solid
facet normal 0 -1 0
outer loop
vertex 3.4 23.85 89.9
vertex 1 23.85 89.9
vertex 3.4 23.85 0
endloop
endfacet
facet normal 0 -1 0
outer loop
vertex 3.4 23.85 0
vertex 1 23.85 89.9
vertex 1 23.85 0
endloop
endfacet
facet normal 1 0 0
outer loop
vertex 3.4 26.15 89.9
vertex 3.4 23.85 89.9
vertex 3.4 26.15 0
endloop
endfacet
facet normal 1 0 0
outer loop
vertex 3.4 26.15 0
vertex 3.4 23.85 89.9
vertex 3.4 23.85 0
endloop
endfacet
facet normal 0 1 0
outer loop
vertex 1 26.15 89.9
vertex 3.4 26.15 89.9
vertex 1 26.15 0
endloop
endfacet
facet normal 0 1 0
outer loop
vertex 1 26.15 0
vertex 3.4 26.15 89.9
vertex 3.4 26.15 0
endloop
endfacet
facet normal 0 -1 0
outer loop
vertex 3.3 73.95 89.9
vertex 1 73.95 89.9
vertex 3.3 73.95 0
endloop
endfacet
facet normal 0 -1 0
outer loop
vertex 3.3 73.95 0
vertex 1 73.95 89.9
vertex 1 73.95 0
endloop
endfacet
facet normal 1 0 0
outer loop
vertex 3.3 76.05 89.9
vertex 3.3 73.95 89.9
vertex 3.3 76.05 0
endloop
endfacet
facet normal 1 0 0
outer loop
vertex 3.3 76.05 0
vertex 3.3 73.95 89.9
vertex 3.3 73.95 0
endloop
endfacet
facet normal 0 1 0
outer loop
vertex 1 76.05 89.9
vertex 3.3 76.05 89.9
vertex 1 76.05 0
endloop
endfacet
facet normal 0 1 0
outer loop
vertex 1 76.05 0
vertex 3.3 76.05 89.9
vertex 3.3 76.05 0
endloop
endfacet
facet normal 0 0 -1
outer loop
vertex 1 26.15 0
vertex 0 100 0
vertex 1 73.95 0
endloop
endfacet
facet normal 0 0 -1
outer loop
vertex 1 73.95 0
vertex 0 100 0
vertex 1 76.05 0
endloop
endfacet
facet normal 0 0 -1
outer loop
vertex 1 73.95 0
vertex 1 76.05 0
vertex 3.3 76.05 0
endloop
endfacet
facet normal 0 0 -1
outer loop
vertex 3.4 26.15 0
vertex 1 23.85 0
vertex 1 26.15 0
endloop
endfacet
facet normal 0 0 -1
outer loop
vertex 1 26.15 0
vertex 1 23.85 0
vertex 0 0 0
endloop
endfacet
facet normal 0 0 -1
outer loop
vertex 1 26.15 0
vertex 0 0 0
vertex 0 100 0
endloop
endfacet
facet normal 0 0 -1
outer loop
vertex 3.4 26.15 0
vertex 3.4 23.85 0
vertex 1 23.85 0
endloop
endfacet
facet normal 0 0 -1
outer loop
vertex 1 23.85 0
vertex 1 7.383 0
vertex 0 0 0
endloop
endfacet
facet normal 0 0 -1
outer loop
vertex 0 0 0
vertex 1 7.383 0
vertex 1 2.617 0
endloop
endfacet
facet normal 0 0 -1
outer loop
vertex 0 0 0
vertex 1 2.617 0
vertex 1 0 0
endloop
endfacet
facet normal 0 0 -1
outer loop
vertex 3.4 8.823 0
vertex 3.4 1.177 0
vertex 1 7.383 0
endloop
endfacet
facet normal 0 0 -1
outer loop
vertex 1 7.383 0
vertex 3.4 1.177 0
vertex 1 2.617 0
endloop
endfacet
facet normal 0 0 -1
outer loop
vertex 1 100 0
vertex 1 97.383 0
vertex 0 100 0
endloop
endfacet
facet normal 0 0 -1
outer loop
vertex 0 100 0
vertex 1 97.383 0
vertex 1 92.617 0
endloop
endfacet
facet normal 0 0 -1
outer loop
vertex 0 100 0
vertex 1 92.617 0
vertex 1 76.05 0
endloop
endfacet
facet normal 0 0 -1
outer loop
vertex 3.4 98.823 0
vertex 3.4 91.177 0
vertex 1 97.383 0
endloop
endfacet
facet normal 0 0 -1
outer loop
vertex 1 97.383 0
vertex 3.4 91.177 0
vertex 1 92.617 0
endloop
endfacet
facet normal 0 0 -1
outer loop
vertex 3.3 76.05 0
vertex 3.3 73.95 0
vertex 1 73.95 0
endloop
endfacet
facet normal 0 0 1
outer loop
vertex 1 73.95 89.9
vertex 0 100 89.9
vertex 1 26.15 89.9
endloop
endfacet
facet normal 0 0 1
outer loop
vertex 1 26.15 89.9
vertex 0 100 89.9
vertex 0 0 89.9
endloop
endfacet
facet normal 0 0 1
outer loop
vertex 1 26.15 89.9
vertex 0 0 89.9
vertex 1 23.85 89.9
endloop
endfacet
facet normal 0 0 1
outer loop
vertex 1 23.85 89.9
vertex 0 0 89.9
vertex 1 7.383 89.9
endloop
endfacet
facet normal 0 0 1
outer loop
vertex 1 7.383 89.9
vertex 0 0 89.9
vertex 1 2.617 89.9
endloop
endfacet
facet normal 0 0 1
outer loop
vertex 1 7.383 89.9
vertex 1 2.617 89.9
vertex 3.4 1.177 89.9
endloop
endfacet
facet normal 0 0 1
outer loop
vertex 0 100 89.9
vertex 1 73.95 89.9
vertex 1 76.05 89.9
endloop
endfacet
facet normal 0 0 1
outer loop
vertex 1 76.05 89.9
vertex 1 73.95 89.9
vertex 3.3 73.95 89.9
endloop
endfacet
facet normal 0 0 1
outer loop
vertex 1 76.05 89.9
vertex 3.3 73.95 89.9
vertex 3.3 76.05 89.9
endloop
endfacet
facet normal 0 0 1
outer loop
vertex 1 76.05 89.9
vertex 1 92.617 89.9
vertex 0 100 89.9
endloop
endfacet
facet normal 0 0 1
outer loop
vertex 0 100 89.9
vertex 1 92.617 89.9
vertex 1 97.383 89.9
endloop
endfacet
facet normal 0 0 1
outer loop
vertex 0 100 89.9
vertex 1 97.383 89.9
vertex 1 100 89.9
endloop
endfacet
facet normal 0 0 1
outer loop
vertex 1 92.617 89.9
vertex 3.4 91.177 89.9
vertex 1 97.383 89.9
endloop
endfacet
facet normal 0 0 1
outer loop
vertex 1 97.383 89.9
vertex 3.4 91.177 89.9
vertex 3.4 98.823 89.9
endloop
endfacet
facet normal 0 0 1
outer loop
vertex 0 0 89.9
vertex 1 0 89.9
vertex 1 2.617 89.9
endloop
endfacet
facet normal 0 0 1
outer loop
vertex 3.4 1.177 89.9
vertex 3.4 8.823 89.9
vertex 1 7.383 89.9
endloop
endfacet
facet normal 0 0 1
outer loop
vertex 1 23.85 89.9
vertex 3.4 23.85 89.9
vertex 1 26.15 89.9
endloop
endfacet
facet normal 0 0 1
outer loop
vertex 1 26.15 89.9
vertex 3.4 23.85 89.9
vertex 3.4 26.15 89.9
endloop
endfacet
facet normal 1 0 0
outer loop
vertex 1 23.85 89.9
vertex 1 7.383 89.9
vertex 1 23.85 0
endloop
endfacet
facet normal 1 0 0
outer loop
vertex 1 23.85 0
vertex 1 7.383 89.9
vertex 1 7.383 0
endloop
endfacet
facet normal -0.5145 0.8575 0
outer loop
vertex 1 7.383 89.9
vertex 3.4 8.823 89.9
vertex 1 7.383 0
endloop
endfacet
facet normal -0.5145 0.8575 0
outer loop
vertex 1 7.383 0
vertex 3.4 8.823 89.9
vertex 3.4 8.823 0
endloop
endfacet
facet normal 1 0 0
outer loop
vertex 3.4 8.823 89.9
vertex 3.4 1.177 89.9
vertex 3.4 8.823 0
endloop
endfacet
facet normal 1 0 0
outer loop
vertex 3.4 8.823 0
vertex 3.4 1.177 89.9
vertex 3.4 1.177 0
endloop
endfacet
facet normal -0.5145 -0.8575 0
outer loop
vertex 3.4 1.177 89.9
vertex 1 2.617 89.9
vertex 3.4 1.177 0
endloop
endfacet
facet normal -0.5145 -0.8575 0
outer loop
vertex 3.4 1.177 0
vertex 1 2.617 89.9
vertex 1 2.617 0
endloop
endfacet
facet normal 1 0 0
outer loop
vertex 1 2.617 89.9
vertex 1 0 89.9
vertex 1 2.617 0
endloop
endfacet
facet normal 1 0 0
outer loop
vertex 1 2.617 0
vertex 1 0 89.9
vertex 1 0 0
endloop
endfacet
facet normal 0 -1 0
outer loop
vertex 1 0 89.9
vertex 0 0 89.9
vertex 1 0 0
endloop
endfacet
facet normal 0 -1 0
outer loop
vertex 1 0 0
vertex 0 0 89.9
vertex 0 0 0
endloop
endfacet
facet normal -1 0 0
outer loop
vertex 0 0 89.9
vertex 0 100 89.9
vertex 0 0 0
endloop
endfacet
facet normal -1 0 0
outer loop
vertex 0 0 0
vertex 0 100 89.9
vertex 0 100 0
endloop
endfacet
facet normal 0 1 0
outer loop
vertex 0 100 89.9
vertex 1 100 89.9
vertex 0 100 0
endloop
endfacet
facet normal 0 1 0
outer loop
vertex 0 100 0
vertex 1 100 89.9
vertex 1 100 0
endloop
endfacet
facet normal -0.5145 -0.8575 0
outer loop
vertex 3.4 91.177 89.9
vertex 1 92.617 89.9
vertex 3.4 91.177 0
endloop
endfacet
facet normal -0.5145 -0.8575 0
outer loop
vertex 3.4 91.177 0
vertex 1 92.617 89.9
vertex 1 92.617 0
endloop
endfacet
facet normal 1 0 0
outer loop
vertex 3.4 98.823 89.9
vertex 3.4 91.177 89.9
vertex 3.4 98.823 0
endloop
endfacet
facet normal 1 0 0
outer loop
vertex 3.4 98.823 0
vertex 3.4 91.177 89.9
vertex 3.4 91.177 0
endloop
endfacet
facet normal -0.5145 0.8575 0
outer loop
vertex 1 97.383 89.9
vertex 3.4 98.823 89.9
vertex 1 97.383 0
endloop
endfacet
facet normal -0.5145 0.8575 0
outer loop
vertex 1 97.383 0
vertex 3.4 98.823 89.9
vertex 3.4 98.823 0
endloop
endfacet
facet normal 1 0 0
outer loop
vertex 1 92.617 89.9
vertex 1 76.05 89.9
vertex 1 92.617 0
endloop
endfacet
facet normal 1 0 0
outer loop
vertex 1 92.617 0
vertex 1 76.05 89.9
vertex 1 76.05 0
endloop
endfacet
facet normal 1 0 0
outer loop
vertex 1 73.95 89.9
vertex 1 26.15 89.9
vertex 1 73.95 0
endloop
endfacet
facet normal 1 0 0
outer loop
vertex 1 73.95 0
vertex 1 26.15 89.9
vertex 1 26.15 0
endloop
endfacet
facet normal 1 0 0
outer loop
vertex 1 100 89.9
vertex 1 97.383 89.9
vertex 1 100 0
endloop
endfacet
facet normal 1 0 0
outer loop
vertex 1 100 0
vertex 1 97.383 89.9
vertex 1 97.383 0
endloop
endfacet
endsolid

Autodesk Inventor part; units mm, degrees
ref_plane "YZ Plane" through (0, 0, 0) normal (1, 0, 0) x (0, 1, 0)
ref_plane "XZ Plane" through (0, 0, 0) normal (0, 1, 0) x (-1, 0, 0)
sketch "Sketch1" plane through (0, 0, 0) normal (0, 0, 1) x (1, 0, 0)
  line L0 (0, 0) -> (0, 100)
  line L1 (0, 100) -> (1, 100)
  line L2 (1, 100) -> (1, 97.5)
  line L3 (1, 97.5) -> (3.5, 99)
  line L4 (3.5, 99) -> (3.5, 91)
  line L5 (3.5, 91) -> (1, 92.5)
  line L6 (1, 92.5) -> (1, 7.5)
  line L7 (1, 7.5) -> (3.5, 9)
  line L8 (3.5, 9) -> (3.5, 1)
  line L9 (3.5, 1) -> (1, 2.5)
  line L10 (1, 2.5) -> (1, 0)
  line L11 (1, 0) -> (0, 0)
  line L12 (1, 76.25) -> (3.5, 76.25)
  line L13 (3.5, 76.25) -> (3.5, 73.75)
  line L14 (3.5, 73.75) -> (1, 73.75)
  line L15 (1, 73.75) -> (1, 76.25)
  line L16 (1, 23.75) -> (3.5, 23.75)
  line L17 (3.5, 23.75) -> (3.5, 26.25)
  line L18 (3.5, 26.25) -> (1, 26.25)
  line L19 (1, 26.25) -> (1, 23.75)
  line L20 (3.4, 98.8234) -> (0.9, 97.3234)
  line L21 (0.9, 97.3234) -> (0.9, 99.9)
  line L22 (0.9, 99.9) -> (0.1, 99.9)
  line L23 (0.1, 99.9) -> (0.1, 0.1)
  line L24 (0.1, 0.1) -> (0.9, 0.1)
  line L25 (0.9, 0.1) -> (0.9, 2.6766)
  line L26 (0.9, 2.6766) -> (3.4, 1.1766)
  line L27 (3.4, 1.1766) -> (3.4, 8.8234)
  line L28 (3.4, 8.8234) -> (0.9, 7.3234)
  line L29 (0.9, 7.3234) -> (0.9, 92.6766)
  line L30 (0.9, 92.6766) -> (3.4, 91.1766)
  line L31 (3.4, 91.1766) -> (3.4, 98.8234)
  line L32 (1, 92.5) -> (1, 97.5)
  line L33 (1, 2.5) -> (1, 7.5)
  point P0 (1, 98.75)
  point P1 (0.5, 0)
  point P2 (3.5, 75)
  point P3 (3.5, 25)
  point P4 (1, 97.3834)
  point P5 (1, 92.6166)
  point P6 (1, 7.3834)
  point P7 (1, 2.6166)
  dimension "d0" = 8
  dimension "d1" = 8
  dimension "d2" = 2.5
  dimension "d3" = 2.5
  dimension "d4" = 1
  dimension "d5" = 1
  dimension "d6" = 100
  dimension "d7" = 5
  dimension "d8" = 5
  dimension "d10" = 2.5
  dimension "d11" = 7.5
  dimension "d12" = 2.5
  dimension "d13" = 1
  dimension "d16" = 2.5
  dimension "d17" = 2.5
  dimension "d18" = 2.5
  dimension "d19" = 2.5
  dimension "d20" = 25
  dimension "d21" = 25
  dimension "d24" = 0.1
extrude "Extrusion1" add sketch "Sketch1" along normal blind 90 contours L0 L1 L2 L32 L20 L21 L22 L23 L24 L25 L26 L33 L10 L11 | L33 L26 L27 L28 L7 L8 L9 | L3 L4 L5 L32 L30 L31 L20 | L33 L28 L27 L26 | L26 L25 L24 L23 L22 L21 L20 L32 L30 L29 L28 L33 | L20 L31 L30 L32 | L28 L29 L30 L32 L6 L33
extrude "Extrusion2" add sketch "Sketch1" along normal blind 90 contours L6 L18 L17 L16 | L12 L13 L14 L6
ref_plane "Work Plane1" through (0, 0, 90) normal (0, 0, -1) x (0, 1, 0)
extrude "Extrusion3" cut sketch "Sketch1" along normal up to surface (90 mm away) contours L33 L26 L27 L28 L7 L8 L9 | L3 L4 L5 L32 L30 L31 L20
sketch "Sketch2" plane through (0, 0, 90) normal (0, 0, 1) x (1, 0, 0)
  point P0 (0, 0)
sketch "Sketch3" plane through (0, 0, 90) normal (0, 0, 1) x (1, 0, 0)
  line L0 (1, 97.3834) -> (1, 100) projected
  line L1 (1, 100) -> (0, 100) projected
  line L2 (0, 100) -> (0, 0) projected
  line L3 (0, 0) -> (1, 0) projected
  line L4 (1, 0) -> (1, 2.6166) projected
  line L5 (1, 2.6166) -> (3.4, 1.1766) projected
  line L6 (3.4, 1.1766) -> (3.4, 8.8234) projected
  line L7 (3.4, 8.8234) -> (1, 7.3834) projected
  line L8 (1, 7.3834) -> (1, 23.75) projected
  line L9 (1, 23.75) -> (3.5, 23.75) projected
  line L10 (3.5, 23.75) -> (3.5, 26.25) projected
  line L11 (3.5, 26.25) -> (1, 26.25) projected
  line L12 (1, 26.25) -> (1, 73.75) projected
  line L13 (1, 73.75) -> (3.5, 73.75) projected
  line L14 (3.5, 73.75) -> (3.5, 76.25) projected
  line L15 (3.5, 76.25) -> (1, 76.25) projected
  line L16 (1, 76.25) -> (1, 92.6166) projected
  line L17 (1, 92.6166) -> (3.4, 91.1766) projected
  line L18 (3.4, 91.1766) -> (3.4, 98.8234) projected
  line L19 (3.4, 98.8234) -> (1, 97.3834) projected
extrude "Extrusion4" cut sketch "Sketch3" against normal blind 0.1
sketch "Sketch4" plane through (0, 0, 0) normal (0, 0, -1) x (-1, 0, 0)
  line L0 (-3.5, 76.25) -> (-1, 76.25) projected
  line L1 (-3.5, 73.75) -> (-3.5, 76.25) projected
  line L2 (-1, 73.75) -> (-3.5, 73.75) projected
  line L3 (-3.5, 26.25) -> (-1, 26.25) projected
  line L4 (-3.5, 23.75) -> (-3.5, 26.25) projected
  line L5 (-1, 23.75) -> (-3.5, 23.75) projected
  line L6 (-1, 76.05) -> (-3.3, 76.05)
  line L7 (-3.3, 76.05) -> (-3.3, 73.95)
  line L8 (-3.3, 73.95) -> (-1, 73.95)
  line L9 (-1, 26.15) -> (-3.4, 26.15)
  line L10 (-3.4, 26.15) -> (-3.4, 23.85)
  line L11 (-3.4, 23.85) -> (-1, 23.85)
  line L12 (-1, 76.25) -> (-1, 73.75)
  line L13 (-1, 26.25) -> (-1, 23.75)
  point P0 (0, 0)
  dimension "d29" = 0.2
  dimension "d30" = 0.1
extrude "Extrusion5" cut sketch "Sketch4" against normal through all contours L0 L12 L6 L7 L8 L2 L1 | L3 L13 L9 L10 L11 L5 L4
equation "\"d27\" = d30"
equation "\"d29\" = 2 * tol"
equation "\"d30\" = tol"
equation "\"tol\" = 0.1"
properties part number "side"
